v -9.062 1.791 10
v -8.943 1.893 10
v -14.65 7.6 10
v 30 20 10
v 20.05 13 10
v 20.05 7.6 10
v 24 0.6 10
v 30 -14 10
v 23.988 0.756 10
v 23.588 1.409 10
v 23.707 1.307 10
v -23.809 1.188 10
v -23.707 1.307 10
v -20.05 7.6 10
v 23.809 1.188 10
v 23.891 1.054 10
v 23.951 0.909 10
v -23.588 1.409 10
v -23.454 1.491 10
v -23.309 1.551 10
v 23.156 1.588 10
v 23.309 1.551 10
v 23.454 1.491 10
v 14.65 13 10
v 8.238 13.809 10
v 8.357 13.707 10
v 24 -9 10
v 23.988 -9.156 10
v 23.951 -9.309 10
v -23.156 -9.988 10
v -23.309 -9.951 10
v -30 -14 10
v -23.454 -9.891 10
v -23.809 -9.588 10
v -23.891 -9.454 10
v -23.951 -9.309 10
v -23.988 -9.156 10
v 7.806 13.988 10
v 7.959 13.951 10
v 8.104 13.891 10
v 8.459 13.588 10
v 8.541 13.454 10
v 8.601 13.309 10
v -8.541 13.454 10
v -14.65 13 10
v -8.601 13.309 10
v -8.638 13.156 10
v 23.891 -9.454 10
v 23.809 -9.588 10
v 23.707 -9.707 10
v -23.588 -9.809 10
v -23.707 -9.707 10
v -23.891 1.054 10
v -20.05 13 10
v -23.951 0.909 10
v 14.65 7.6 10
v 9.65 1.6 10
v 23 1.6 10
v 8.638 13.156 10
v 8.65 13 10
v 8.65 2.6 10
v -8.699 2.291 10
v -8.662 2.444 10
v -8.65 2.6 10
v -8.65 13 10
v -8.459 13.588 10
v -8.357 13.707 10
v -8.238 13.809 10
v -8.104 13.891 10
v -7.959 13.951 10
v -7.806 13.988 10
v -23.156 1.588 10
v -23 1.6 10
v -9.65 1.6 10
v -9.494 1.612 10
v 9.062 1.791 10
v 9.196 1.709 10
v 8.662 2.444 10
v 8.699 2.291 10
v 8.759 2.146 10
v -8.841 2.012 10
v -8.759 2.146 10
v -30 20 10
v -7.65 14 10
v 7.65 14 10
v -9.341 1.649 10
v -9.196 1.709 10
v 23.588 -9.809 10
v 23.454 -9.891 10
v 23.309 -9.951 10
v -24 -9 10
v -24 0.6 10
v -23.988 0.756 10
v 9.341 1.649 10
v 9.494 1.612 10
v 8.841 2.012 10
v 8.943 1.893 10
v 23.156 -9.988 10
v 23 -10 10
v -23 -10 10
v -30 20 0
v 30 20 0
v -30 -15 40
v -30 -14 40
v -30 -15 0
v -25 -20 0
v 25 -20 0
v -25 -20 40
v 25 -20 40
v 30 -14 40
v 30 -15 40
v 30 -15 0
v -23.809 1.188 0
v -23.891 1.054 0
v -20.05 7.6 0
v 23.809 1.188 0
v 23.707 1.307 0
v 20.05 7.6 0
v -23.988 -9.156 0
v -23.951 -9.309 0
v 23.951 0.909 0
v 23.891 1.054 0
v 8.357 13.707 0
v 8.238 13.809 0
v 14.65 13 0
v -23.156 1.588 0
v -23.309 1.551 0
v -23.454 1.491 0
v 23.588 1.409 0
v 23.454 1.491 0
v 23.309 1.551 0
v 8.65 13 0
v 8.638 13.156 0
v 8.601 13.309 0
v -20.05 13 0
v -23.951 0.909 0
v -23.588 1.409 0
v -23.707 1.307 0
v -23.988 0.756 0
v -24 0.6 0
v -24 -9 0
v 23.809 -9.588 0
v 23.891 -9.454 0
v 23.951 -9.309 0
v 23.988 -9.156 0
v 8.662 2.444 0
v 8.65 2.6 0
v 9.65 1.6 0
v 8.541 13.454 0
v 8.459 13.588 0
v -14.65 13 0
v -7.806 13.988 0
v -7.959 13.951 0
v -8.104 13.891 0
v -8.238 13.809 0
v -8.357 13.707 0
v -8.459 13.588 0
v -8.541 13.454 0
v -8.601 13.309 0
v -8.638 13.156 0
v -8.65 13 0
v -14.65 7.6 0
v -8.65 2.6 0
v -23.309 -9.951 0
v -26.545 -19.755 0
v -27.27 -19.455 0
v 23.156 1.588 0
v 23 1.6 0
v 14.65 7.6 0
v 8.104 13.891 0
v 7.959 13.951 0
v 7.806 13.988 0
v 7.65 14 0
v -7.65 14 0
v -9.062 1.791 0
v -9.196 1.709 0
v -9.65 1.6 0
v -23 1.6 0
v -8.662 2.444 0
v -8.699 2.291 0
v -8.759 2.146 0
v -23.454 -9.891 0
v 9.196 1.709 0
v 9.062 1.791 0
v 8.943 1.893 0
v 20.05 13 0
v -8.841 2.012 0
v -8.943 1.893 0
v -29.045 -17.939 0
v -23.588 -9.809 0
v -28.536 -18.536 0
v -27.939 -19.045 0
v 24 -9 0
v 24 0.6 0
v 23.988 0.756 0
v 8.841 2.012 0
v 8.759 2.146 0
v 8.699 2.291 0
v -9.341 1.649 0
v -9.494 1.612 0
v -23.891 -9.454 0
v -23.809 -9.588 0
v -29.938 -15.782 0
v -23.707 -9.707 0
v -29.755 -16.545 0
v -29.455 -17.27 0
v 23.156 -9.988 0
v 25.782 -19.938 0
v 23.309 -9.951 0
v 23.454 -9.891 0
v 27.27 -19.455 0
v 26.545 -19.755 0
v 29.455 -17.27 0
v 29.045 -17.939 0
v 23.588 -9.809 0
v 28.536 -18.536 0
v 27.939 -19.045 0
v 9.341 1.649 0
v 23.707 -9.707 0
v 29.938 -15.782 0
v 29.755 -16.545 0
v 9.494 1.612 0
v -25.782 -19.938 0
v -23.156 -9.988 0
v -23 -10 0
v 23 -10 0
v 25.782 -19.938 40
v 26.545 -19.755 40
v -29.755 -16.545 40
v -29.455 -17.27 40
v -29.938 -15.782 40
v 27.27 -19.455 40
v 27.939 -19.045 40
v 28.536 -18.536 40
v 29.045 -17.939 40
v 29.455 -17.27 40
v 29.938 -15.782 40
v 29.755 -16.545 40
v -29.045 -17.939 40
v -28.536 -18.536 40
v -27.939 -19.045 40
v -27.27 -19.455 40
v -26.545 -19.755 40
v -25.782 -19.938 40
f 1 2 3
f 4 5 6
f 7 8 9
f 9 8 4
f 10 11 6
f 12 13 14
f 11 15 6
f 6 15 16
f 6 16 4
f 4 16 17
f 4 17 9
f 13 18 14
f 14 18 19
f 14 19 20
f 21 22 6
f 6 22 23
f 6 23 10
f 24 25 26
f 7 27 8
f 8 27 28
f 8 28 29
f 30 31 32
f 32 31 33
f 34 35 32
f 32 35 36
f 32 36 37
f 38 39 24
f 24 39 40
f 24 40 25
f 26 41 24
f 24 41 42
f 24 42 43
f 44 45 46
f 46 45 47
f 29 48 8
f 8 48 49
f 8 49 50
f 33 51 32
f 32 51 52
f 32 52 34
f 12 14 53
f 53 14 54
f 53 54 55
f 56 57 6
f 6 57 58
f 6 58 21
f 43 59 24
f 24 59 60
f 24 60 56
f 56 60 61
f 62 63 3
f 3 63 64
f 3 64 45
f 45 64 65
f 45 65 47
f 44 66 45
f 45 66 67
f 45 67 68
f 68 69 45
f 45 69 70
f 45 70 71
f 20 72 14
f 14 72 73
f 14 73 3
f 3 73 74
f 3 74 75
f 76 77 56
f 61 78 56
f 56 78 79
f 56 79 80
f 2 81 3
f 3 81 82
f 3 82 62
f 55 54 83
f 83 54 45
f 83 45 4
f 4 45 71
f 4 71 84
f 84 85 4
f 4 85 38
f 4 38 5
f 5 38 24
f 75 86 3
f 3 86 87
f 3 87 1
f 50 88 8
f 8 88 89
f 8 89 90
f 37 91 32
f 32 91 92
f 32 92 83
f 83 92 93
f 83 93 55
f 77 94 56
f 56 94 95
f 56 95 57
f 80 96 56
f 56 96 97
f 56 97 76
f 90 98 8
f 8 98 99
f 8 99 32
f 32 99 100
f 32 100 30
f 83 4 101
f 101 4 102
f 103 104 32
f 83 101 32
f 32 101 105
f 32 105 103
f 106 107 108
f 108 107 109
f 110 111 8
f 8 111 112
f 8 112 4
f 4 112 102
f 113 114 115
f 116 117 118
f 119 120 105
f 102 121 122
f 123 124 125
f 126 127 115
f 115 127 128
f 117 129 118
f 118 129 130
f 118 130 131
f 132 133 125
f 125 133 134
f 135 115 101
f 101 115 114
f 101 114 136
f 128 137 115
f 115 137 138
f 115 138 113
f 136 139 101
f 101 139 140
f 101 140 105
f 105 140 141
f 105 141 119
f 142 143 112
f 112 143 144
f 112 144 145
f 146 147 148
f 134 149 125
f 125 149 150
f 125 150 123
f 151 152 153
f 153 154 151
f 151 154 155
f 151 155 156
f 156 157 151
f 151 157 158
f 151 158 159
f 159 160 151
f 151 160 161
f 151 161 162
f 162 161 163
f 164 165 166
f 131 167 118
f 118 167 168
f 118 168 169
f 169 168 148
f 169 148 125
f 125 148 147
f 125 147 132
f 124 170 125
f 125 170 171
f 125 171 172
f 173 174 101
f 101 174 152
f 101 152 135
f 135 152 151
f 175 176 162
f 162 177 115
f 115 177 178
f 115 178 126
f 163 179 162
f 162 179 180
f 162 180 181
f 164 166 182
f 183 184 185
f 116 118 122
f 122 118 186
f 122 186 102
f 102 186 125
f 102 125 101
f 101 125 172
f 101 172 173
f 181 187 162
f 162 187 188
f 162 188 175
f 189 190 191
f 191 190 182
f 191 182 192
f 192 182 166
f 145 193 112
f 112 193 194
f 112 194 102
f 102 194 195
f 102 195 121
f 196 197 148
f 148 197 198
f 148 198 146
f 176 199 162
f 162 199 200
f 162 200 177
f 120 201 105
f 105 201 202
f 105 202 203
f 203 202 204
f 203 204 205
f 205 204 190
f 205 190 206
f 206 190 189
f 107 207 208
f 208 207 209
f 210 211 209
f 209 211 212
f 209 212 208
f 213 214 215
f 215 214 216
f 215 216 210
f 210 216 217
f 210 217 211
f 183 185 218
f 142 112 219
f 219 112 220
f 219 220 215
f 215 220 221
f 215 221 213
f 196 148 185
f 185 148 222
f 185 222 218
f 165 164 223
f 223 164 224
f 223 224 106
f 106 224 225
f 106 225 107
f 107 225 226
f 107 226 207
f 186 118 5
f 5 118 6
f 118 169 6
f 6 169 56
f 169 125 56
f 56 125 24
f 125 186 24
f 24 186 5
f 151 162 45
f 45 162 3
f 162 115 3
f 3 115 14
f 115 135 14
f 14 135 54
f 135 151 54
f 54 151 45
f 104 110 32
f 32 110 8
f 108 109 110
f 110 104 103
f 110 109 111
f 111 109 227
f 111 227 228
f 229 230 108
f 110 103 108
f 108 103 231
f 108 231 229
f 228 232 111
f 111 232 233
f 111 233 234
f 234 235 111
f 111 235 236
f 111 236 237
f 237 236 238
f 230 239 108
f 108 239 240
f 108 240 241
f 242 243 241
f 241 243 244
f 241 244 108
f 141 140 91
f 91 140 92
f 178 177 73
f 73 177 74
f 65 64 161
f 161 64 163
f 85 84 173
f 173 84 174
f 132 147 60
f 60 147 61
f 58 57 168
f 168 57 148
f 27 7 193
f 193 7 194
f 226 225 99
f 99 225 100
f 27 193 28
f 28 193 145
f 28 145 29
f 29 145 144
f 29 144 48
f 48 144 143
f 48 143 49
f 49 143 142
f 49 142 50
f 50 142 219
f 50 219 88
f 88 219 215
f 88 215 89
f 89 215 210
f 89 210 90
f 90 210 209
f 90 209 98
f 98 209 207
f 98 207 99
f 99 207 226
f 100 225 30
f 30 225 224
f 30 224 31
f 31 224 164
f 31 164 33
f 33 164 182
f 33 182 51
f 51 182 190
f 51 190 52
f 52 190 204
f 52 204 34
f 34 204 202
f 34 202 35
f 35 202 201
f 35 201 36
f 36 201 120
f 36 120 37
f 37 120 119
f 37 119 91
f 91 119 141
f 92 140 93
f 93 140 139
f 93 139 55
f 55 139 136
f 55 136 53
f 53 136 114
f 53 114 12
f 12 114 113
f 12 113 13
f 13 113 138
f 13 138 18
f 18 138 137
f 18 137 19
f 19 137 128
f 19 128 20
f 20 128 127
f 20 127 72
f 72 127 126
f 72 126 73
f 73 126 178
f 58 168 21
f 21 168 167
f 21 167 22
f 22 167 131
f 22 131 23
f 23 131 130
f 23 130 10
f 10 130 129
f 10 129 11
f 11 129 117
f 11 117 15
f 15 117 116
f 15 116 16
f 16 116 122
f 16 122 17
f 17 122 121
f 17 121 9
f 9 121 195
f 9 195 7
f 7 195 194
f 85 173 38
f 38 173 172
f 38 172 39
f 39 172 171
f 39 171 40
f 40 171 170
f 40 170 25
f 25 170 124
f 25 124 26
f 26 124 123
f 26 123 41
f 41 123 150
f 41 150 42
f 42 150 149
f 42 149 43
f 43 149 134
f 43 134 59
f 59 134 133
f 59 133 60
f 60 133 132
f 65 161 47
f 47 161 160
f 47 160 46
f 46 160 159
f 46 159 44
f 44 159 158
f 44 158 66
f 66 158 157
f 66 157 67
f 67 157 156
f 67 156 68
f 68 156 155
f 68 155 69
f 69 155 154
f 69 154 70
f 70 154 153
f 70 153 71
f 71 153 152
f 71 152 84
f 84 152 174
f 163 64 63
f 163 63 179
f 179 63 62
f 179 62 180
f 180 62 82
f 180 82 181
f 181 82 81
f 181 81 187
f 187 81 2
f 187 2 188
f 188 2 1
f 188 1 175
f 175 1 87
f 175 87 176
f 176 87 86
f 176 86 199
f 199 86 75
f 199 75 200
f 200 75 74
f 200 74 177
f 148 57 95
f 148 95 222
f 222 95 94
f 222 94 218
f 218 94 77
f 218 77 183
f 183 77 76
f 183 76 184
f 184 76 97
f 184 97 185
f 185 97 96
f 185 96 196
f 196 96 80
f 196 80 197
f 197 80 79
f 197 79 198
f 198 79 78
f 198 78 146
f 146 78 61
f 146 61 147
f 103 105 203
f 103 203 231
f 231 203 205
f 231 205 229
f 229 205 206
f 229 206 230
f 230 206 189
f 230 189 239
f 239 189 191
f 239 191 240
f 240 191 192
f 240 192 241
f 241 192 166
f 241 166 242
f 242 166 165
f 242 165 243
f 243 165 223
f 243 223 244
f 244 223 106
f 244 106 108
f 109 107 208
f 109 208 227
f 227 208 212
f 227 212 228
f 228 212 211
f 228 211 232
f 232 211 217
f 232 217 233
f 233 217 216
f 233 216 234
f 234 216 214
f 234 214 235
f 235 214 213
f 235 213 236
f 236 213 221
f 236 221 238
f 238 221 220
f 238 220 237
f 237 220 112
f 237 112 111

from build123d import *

# Parameters (mm, degrees)
SKETCH1_W           = 40
SKETCH1_H           = 60
BOSS_EXTRUDE1_DEPTH = 10
SKETCH2_W           = 5.4
SKETCH2_H           = 5.4
CUT_EXTRUDE1_DEPTH  = 38.416573868
SKETCH3_W           = 60
SKETCH3_H           = 6
BOSS_EXTRUDE2_DEPTH = 30
CUT_EXTRUDE2_DEPTH  = 47.904157598
FILLET2_R           = 1
FILLET3_R           = 5


with BuildPart() as part:
    # Sketch1 → Boss-Extrude1 (new body)
    with BuildSketch(Plane(origin=(0, 0, 0), x_dir=(0, 1, 0), z_dir=(0, 0, 1))):
        Rectangle(SKETCH1_W, SKETCH1_H)
    extrude(amount=BOSS_EXTRUDE1_DEPTH)

    # Sketch2 → Cut-Extrude1 (cut, through all)
    with BuildSketch(Plane.XY.offset(10)):
        with Locations((-17.35, 10.3)):
            Rectangle(SKETCH2_W, SKETCH2_H)
        with Locations((17.35, 10.3)):
            Rectangle(SKETCH2_W, SKETCH2_H)
    extrude(amount=-CUT_EXTRUDE1_DEPTH, mode=Mode.SUBTRACT)

    # Sketch3 → Boss-Extrude2 (add)
    with BuildSketch(Plane.XY.offset(10)):
        with Locations((0, -17)):
            Rectangle(SKETCH3_W, SKETCH3_H)
    extrude(amount=BOSS_EXTRUDE2_DEPTH)

    # Sketch4 → Cut-Extrude2 (cut, through all)
    with BuildSketch(Plane.XY.offset(10)):
        Polygon((-24, 1.6), (-8.65, 1.6), (-8.65, 14), (8.65, 14), (8.65, 1.6), (24, 1.6), (24, -10), (-24, -10), align=None)
    extrude(amount=-CUT_EXTRUDE2_DEPTH, mode=Mode.SUBTRACT)

    # Fillet2
    fillet2_edges = [part.edges().sort_by_distance(p)[0] for p in [
        (-24, -10, 5),
        (-24, 1.6, 5),
        (-8.65, 1.6, 5),
        (-8.65, 14, 5),
        (8.65, 14, 5),
        (8.65, 1.6, 5),
        (24, 1.6, 5),
        (24, -10, 5),
    ]]
    fillet(fillet2_edges, radius=FILLET2_R)

    # Fillet3
    fillet3_edges = [part.edges().sort_by_distance(p)[0] for p in [
        (30, -20, 20),
        (-30, -20, 20),
    ]]
    fillet(fillet3_edges, radius=FILLET3_R)


solid = part.part
